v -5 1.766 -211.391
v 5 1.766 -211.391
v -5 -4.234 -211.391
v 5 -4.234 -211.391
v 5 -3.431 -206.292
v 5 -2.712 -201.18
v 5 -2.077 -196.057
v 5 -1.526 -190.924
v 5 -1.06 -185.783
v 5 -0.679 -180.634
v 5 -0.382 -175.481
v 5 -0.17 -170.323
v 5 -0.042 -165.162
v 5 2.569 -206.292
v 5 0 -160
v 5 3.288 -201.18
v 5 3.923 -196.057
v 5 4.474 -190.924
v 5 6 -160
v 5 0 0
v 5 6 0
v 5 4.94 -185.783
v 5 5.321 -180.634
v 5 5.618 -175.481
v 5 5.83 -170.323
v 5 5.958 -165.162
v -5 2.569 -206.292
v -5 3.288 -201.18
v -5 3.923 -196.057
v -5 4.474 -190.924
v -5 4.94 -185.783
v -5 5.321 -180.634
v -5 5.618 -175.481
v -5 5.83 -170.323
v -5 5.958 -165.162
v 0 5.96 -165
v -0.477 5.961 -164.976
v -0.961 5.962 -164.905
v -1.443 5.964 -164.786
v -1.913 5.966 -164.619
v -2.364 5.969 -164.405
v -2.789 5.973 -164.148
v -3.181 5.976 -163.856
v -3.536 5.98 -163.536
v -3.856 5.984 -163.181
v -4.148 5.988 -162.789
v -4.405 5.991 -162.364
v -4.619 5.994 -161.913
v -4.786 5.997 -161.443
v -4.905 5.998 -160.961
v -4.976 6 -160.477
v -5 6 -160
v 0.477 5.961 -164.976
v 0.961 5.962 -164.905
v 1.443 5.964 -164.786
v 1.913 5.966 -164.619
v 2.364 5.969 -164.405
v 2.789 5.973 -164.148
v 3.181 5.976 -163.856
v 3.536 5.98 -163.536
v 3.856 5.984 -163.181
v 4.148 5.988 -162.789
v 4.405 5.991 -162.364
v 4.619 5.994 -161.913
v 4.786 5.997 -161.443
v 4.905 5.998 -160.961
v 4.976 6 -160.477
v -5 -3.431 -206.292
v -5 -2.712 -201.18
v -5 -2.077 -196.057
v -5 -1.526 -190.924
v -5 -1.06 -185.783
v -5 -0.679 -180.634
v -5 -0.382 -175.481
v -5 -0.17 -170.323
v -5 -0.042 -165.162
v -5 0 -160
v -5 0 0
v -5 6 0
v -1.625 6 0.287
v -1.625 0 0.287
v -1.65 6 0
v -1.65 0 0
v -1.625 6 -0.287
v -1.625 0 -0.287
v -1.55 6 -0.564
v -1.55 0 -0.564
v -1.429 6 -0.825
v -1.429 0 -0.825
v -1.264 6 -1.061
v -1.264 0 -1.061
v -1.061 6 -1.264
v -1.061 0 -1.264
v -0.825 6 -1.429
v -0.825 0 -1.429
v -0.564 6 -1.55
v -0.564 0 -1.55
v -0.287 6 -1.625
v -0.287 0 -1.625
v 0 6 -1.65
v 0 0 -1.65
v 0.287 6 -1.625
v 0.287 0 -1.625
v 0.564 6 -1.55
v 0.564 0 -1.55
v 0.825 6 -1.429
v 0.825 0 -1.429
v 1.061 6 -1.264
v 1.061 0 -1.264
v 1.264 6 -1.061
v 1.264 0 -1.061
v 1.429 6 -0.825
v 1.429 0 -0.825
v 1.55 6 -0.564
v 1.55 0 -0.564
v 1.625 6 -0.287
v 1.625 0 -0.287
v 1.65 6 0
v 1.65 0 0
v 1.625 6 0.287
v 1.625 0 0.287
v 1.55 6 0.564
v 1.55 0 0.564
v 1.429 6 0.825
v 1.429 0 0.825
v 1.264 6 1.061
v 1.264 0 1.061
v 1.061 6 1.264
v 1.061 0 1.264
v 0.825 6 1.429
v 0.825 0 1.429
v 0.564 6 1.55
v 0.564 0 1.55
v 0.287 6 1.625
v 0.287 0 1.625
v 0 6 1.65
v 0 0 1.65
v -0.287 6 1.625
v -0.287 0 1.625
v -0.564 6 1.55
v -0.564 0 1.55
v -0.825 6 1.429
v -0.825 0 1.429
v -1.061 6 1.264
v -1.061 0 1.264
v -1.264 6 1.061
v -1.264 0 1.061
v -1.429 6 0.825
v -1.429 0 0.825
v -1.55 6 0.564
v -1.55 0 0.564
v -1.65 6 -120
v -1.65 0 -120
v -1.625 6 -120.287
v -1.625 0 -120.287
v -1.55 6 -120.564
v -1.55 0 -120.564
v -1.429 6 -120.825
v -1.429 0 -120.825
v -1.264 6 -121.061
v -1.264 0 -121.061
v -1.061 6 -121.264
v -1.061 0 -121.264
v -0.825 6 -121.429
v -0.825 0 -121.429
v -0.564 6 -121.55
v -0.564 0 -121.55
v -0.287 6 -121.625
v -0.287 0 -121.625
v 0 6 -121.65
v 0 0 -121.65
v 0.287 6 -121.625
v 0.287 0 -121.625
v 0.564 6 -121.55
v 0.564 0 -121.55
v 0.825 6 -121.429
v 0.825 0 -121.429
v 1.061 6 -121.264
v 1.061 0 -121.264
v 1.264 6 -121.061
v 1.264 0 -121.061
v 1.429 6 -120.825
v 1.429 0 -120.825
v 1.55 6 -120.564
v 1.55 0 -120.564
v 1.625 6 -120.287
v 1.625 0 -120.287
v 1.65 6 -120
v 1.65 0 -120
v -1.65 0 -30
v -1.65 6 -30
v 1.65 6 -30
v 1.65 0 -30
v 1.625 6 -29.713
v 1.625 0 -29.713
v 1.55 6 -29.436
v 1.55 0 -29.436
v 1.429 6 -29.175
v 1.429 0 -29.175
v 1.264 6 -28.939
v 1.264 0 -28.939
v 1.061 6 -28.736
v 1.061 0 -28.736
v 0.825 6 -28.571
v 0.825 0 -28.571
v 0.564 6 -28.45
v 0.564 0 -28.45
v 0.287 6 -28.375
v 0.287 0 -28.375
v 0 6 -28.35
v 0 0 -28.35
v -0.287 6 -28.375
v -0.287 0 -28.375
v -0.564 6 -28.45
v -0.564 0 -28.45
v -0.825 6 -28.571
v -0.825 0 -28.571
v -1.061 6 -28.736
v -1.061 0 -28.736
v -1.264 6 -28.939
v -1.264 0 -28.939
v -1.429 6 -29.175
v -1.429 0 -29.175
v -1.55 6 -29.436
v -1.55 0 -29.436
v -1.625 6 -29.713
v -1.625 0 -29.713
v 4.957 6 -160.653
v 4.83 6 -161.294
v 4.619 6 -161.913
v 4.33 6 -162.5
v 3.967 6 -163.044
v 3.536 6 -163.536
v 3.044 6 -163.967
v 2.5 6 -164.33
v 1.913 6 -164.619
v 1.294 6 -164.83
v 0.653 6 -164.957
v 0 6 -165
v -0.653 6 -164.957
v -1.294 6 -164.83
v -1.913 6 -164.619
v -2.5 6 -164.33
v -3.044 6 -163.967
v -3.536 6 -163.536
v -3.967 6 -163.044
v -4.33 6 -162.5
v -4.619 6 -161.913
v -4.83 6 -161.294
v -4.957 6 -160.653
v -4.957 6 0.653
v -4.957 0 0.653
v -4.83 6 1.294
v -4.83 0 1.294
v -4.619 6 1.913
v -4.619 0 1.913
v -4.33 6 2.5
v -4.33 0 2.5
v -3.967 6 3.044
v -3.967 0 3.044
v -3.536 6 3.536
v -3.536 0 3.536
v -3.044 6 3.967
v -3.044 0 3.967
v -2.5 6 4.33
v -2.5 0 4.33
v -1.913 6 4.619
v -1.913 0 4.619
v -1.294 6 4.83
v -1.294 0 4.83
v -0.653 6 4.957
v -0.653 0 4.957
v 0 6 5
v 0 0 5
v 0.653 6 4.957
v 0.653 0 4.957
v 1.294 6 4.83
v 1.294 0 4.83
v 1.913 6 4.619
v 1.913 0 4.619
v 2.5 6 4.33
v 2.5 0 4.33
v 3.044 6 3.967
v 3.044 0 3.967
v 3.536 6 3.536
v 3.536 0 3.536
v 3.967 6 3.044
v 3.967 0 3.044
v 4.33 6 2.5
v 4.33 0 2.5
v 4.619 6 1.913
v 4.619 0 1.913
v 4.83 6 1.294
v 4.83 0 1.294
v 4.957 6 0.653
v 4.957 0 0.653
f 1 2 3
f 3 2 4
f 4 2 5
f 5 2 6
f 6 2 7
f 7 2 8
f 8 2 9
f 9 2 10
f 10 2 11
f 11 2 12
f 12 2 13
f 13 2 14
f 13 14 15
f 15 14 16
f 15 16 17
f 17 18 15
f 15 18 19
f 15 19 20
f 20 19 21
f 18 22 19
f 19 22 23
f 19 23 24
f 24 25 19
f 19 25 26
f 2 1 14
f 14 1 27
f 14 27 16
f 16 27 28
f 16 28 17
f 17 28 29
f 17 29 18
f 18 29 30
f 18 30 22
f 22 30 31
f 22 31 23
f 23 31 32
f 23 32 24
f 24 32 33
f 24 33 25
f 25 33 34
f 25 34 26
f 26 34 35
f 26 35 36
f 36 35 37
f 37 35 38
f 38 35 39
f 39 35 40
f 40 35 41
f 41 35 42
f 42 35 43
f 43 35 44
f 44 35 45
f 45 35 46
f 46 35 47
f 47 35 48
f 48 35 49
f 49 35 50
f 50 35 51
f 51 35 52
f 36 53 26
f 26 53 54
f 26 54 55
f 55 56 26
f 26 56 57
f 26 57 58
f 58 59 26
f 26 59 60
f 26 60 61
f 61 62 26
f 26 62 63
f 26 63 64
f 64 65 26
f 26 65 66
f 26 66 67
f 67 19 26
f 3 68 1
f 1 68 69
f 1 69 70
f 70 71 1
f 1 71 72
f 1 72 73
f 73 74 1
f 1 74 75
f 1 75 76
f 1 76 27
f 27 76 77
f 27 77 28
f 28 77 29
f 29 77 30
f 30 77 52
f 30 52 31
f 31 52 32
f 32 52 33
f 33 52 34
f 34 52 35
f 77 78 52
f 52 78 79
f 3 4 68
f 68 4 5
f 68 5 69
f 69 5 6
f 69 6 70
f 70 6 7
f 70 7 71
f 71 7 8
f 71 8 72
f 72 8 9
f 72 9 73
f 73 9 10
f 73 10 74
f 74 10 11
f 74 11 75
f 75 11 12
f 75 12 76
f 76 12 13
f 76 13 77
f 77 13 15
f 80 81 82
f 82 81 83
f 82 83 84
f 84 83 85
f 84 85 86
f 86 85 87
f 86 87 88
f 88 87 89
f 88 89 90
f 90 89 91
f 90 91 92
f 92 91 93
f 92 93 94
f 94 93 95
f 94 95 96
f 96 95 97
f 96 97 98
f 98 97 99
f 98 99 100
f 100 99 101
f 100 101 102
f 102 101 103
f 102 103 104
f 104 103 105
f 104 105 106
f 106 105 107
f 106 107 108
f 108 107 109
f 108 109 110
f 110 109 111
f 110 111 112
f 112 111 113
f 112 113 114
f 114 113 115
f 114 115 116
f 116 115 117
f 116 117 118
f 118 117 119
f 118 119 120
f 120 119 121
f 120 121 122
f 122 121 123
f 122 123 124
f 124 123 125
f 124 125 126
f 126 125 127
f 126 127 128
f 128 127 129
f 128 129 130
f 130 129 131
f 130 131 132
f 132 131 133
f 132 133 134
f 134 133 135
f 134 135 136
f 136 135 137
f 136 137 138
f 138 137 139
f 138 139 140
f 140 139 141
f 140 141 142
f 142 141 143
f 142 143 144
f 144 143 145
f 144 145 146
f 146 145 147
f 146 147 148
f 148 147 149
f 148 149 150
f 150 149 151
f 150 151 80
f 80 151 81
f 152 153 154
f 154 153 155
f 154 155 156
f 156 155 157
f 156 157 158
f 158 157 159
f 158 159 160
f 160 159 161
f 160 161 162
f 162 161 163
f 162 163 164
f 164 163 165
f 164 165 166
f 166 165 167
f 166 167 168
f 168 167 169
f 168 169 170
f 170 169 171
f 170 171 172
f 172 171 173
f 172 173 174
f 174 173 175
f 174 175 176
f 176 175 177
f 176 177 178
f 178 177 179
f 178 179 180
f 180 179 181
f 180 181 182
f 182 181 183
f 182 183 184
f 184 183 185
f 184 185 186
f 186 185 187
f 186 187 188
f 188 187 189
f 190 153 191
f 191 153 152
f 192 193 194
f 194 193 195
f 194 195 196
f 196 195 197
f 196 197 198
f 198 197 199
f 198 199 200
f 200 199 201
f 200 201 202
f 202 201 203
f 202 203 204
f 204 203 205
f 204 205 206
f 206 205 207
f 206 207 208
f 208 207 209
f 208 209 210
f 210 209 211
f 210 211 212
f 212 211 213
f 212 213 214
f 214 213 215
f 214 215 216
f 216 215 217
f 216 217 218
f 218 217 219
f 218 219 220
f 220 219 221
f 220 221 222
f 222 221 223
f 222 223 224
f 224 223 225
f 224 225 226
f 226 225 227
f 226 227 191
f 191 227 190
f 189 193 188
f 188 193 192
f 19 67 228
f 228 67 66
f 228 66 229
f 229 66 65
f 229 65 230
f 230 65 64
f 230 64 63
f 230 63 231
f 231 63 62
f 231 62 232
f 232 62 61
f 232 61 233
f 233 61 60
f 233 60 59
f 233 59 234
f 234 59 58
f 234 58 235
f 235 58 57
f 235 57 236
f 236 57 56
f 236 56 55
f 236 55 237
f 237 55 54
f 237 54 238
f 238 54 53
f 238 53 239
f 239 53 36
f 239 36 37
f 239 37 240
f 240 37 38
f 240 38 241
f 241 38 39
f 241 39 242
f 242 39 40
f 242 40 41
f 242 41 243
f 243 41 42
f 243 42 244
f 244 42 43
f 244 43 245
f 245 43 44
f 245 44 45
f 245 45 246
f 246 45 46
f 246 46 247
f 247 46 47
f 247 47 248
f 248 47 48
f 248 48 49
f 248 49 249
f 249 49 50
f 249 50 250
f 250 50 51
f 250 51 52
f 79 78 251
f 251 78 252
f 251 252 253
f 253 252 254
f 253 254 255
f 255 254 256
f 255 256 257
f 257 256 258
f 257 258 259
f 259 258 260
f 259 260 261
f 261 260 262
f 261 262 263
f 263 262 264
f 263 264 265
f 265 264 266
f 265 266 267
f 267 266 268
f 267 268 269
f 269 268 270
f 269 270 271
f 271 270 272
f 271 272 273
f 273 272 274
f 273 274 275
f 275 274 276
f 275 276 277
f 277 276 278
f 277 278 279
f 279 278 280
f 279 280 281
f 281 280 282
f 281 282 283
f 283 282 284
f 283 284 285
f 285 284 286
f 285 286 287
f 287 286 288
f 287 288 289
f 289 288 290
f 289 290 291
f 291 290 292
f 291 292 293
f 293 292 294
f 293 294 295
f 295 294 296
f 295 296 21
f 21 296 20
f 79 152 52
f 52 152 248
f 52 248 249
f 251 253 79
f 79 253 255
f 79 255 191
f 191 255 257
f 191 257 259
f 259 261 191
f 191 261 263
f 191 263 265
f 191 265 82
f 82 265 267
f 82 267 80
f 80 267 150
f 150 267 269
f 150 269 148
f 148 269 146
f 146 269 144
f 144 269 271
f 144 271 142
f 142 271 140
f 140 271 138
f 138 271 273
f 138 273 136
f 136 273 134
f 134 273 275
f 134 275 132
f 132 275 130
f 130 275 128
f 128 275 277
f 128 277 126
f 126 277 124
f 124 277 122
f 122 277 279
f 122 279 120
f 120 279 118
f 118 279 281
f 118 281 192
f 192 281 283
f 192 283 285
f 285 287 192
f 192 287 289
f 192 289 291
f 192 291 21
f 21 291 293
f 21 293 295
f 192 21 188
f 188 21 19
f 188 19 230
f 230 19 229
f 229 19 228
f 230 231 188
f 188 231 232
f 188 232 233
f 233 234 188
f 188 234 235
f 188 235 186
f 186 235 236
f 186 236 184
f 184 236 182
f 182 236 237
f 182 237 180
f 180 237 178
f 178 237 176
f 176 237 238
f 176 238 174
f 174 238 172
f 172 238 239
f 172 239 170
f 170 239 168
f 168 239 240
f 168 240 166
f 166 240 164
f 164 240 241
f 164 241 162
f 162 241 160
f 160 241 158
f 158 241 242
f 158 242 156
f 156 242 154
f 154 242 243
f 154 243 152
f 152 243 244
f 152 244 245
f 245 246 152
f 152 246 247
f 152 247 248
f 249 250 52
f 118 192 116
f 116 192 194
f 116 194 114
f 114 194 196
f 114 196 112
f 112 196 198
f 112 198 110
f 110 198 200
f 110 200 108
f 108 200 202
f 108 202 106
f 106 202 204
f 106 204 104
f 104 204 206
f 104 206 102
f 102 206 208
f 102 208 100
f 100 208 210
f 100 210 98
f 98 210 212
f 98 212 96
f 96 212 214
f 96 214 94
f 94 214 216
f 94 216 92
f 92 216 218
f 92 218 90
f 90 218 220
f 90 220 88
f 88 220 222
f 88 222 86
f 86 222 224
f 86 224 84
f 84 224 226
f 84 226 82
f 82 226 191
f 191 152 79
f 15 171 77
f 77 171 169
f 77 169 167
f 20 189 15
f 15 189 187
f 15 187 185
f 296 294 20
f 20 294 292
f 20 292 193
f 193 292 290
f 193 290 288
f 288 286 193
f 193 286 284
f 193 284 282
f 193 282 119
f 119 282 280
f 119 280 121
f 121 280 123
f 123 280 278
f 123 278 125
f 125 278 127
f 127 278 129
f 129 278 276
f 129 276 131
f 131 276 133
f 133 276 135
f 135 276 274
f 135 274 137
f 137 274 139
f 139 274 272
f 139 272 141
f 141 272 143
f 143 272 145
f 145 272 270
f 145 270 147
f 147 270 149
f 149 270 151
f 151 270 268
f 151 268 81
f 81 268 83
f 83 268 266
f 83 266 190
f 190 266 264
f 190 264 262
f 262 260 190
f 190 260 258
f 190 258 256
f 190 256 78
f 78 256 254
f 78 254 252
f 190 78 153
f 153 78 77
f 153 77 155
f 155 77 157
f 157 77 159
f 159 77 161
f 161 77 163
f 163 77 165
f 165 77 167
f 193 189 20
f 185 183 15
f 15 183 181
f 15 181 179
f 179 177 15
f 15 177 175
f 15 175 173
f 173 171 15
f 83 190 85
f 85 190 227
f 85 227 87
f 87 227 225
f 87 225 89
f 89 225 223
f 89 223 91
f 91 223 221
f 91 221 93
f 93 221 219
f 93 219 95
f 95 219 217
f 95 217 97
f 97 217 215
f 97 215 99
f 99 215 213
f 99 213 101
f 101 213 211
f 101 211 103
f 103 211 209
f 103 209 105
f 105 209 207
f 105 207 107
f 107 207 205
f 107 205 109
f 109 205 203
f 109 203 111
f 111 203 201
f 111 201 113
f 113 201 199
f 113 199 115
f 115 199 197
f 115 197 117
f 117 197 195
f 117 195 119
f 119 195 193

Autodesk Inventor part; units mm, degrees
ref_plane "YZ Plane" through (0, 0, 0) normal (1, 0, 0) x (0, 1, 0)
ref_plane "XZ Plane" through (0, 0, 0) normal (0, 1, 0) x (-1, 0, 0)
ref_plane "XY Plane" through (0, 0, 0) normal (0, 0, 1) x (1, 0, 0)
sketch "Sketch1" plane through (0, 0, 0) normal (0, 1, 0) x (-1, 0, 0)
  line L0 (0, 0) -> (0, -160) construction
  line L1 (5, 0) -> (5, -160)
  line L2 (-5, -160) -> (-5, 0)
  arc A0 (5, 0) -> (-5, 0) centre (0, 0) ccw
  arc A1 (-5, -160) -> (5, -160) centre (0, -160) ccw
  circle A2 centre (0, 0) radius 1.65
  line L3 (0, -30) -> (0, -120) construction
  line L4 (1.65, -30) -> (1.65, -120)
  line L5 (-1.65, -120) -> (-1.65, -30)
  arc A3 (1.65, -30) -> (-1.65, -30) centre (0, -30) ccw
  arc A4 (-1.65, -120) -> (1.65, -120) centre (0, -120) ccw
  point P0 (0, -80)
  point P1 (0, -75)
  dimension "d0" = 160
  dimension "d1" = 10
  dimension "d2" = 3.3
  dimension "d3" = 30
  dimension "d5" = 120
  dimension "d6" = 3.3
extrude "Extrusion1" add sketch "Sketch1" along normal blind 6
sketch "Sketch2" plane through (5, 0, 0) normal (1, 0, 0) x (0, 0, -1)
  line L0 (160, 0) -> (160, 6) projected
  line L1 (0, 0) -> (160, 0) projected
  line L2 (160, 0) -> (160, 6) projected
  line L3 (0, 6) -> (160, 6) projected
  line L4 (0, 0) -> (0, 6) projected
  line L5 (160, 0) -> (160, 0) projected
  line L6 (160, 0) -> (160, 6) projected
  line L7 (160, 6) -> (160, 6) projected
  line L8 (160, 0) -> (160, 6) projected
  line L9 (160, 0) -> (0, 0) projected
  arc A0 (373.775, -84) -> (160, 0) centre (160, -314.0223) ccw
  line L10 (160, 6) -> (0, 6) projected
  arc A1 (373.775, -78) -> (160, 6) centre (160, -308.0223) ccw
  line L11 (373.775, -78) -> (373.775, -84)
  line L12 (0, 0) -> (160, 0) projected
  dimension "d9" = 6
  dimension "d10" = 373.775
  dimension "d11" = 90
extrude "Extrusion2" add sketch "Sketch2" against normal blind 10 contours L0 A1 L11 A0
fillet "Fillet1" radius 2 4 edges at (0, -78, -373.775) (5, -81, -373.775) (-5, -81, -373.775) (0, -84, -373.775)
sketch "Sketch3" plane through (0, 6, 0) normal (0, 1, 0) x (1, 0, 0)
  line L0 (36.6774, -16.9321) -> (-64.8889, -16.9321)
  line L1 (-64.8889, -16.9321) -> (-64.8889, 211.3912)
  line L2 (-64.8889, 211.3912) -> (36.6774, 211.3912)
  line L3 (36.6774, 211.3912) -> (36.6774, -16.9321)
  line L4 (-92.1247, 397.3107) -> (101.238, 397.3107)
  line L5 (101.238, 397.3107) -> (101.238, -55.9315)
  line L6 (101.238, -55.9315) -> (-92.1247, -55.9315)
  line L7 (-92.1247, -55.9315) -> (-92.1247, 397.3107)
  point P0 (0, 0)
extrude "Extrusion3" cut sketch "Sketch3" against normal blind 100
properties part number "Part_11_p2"
